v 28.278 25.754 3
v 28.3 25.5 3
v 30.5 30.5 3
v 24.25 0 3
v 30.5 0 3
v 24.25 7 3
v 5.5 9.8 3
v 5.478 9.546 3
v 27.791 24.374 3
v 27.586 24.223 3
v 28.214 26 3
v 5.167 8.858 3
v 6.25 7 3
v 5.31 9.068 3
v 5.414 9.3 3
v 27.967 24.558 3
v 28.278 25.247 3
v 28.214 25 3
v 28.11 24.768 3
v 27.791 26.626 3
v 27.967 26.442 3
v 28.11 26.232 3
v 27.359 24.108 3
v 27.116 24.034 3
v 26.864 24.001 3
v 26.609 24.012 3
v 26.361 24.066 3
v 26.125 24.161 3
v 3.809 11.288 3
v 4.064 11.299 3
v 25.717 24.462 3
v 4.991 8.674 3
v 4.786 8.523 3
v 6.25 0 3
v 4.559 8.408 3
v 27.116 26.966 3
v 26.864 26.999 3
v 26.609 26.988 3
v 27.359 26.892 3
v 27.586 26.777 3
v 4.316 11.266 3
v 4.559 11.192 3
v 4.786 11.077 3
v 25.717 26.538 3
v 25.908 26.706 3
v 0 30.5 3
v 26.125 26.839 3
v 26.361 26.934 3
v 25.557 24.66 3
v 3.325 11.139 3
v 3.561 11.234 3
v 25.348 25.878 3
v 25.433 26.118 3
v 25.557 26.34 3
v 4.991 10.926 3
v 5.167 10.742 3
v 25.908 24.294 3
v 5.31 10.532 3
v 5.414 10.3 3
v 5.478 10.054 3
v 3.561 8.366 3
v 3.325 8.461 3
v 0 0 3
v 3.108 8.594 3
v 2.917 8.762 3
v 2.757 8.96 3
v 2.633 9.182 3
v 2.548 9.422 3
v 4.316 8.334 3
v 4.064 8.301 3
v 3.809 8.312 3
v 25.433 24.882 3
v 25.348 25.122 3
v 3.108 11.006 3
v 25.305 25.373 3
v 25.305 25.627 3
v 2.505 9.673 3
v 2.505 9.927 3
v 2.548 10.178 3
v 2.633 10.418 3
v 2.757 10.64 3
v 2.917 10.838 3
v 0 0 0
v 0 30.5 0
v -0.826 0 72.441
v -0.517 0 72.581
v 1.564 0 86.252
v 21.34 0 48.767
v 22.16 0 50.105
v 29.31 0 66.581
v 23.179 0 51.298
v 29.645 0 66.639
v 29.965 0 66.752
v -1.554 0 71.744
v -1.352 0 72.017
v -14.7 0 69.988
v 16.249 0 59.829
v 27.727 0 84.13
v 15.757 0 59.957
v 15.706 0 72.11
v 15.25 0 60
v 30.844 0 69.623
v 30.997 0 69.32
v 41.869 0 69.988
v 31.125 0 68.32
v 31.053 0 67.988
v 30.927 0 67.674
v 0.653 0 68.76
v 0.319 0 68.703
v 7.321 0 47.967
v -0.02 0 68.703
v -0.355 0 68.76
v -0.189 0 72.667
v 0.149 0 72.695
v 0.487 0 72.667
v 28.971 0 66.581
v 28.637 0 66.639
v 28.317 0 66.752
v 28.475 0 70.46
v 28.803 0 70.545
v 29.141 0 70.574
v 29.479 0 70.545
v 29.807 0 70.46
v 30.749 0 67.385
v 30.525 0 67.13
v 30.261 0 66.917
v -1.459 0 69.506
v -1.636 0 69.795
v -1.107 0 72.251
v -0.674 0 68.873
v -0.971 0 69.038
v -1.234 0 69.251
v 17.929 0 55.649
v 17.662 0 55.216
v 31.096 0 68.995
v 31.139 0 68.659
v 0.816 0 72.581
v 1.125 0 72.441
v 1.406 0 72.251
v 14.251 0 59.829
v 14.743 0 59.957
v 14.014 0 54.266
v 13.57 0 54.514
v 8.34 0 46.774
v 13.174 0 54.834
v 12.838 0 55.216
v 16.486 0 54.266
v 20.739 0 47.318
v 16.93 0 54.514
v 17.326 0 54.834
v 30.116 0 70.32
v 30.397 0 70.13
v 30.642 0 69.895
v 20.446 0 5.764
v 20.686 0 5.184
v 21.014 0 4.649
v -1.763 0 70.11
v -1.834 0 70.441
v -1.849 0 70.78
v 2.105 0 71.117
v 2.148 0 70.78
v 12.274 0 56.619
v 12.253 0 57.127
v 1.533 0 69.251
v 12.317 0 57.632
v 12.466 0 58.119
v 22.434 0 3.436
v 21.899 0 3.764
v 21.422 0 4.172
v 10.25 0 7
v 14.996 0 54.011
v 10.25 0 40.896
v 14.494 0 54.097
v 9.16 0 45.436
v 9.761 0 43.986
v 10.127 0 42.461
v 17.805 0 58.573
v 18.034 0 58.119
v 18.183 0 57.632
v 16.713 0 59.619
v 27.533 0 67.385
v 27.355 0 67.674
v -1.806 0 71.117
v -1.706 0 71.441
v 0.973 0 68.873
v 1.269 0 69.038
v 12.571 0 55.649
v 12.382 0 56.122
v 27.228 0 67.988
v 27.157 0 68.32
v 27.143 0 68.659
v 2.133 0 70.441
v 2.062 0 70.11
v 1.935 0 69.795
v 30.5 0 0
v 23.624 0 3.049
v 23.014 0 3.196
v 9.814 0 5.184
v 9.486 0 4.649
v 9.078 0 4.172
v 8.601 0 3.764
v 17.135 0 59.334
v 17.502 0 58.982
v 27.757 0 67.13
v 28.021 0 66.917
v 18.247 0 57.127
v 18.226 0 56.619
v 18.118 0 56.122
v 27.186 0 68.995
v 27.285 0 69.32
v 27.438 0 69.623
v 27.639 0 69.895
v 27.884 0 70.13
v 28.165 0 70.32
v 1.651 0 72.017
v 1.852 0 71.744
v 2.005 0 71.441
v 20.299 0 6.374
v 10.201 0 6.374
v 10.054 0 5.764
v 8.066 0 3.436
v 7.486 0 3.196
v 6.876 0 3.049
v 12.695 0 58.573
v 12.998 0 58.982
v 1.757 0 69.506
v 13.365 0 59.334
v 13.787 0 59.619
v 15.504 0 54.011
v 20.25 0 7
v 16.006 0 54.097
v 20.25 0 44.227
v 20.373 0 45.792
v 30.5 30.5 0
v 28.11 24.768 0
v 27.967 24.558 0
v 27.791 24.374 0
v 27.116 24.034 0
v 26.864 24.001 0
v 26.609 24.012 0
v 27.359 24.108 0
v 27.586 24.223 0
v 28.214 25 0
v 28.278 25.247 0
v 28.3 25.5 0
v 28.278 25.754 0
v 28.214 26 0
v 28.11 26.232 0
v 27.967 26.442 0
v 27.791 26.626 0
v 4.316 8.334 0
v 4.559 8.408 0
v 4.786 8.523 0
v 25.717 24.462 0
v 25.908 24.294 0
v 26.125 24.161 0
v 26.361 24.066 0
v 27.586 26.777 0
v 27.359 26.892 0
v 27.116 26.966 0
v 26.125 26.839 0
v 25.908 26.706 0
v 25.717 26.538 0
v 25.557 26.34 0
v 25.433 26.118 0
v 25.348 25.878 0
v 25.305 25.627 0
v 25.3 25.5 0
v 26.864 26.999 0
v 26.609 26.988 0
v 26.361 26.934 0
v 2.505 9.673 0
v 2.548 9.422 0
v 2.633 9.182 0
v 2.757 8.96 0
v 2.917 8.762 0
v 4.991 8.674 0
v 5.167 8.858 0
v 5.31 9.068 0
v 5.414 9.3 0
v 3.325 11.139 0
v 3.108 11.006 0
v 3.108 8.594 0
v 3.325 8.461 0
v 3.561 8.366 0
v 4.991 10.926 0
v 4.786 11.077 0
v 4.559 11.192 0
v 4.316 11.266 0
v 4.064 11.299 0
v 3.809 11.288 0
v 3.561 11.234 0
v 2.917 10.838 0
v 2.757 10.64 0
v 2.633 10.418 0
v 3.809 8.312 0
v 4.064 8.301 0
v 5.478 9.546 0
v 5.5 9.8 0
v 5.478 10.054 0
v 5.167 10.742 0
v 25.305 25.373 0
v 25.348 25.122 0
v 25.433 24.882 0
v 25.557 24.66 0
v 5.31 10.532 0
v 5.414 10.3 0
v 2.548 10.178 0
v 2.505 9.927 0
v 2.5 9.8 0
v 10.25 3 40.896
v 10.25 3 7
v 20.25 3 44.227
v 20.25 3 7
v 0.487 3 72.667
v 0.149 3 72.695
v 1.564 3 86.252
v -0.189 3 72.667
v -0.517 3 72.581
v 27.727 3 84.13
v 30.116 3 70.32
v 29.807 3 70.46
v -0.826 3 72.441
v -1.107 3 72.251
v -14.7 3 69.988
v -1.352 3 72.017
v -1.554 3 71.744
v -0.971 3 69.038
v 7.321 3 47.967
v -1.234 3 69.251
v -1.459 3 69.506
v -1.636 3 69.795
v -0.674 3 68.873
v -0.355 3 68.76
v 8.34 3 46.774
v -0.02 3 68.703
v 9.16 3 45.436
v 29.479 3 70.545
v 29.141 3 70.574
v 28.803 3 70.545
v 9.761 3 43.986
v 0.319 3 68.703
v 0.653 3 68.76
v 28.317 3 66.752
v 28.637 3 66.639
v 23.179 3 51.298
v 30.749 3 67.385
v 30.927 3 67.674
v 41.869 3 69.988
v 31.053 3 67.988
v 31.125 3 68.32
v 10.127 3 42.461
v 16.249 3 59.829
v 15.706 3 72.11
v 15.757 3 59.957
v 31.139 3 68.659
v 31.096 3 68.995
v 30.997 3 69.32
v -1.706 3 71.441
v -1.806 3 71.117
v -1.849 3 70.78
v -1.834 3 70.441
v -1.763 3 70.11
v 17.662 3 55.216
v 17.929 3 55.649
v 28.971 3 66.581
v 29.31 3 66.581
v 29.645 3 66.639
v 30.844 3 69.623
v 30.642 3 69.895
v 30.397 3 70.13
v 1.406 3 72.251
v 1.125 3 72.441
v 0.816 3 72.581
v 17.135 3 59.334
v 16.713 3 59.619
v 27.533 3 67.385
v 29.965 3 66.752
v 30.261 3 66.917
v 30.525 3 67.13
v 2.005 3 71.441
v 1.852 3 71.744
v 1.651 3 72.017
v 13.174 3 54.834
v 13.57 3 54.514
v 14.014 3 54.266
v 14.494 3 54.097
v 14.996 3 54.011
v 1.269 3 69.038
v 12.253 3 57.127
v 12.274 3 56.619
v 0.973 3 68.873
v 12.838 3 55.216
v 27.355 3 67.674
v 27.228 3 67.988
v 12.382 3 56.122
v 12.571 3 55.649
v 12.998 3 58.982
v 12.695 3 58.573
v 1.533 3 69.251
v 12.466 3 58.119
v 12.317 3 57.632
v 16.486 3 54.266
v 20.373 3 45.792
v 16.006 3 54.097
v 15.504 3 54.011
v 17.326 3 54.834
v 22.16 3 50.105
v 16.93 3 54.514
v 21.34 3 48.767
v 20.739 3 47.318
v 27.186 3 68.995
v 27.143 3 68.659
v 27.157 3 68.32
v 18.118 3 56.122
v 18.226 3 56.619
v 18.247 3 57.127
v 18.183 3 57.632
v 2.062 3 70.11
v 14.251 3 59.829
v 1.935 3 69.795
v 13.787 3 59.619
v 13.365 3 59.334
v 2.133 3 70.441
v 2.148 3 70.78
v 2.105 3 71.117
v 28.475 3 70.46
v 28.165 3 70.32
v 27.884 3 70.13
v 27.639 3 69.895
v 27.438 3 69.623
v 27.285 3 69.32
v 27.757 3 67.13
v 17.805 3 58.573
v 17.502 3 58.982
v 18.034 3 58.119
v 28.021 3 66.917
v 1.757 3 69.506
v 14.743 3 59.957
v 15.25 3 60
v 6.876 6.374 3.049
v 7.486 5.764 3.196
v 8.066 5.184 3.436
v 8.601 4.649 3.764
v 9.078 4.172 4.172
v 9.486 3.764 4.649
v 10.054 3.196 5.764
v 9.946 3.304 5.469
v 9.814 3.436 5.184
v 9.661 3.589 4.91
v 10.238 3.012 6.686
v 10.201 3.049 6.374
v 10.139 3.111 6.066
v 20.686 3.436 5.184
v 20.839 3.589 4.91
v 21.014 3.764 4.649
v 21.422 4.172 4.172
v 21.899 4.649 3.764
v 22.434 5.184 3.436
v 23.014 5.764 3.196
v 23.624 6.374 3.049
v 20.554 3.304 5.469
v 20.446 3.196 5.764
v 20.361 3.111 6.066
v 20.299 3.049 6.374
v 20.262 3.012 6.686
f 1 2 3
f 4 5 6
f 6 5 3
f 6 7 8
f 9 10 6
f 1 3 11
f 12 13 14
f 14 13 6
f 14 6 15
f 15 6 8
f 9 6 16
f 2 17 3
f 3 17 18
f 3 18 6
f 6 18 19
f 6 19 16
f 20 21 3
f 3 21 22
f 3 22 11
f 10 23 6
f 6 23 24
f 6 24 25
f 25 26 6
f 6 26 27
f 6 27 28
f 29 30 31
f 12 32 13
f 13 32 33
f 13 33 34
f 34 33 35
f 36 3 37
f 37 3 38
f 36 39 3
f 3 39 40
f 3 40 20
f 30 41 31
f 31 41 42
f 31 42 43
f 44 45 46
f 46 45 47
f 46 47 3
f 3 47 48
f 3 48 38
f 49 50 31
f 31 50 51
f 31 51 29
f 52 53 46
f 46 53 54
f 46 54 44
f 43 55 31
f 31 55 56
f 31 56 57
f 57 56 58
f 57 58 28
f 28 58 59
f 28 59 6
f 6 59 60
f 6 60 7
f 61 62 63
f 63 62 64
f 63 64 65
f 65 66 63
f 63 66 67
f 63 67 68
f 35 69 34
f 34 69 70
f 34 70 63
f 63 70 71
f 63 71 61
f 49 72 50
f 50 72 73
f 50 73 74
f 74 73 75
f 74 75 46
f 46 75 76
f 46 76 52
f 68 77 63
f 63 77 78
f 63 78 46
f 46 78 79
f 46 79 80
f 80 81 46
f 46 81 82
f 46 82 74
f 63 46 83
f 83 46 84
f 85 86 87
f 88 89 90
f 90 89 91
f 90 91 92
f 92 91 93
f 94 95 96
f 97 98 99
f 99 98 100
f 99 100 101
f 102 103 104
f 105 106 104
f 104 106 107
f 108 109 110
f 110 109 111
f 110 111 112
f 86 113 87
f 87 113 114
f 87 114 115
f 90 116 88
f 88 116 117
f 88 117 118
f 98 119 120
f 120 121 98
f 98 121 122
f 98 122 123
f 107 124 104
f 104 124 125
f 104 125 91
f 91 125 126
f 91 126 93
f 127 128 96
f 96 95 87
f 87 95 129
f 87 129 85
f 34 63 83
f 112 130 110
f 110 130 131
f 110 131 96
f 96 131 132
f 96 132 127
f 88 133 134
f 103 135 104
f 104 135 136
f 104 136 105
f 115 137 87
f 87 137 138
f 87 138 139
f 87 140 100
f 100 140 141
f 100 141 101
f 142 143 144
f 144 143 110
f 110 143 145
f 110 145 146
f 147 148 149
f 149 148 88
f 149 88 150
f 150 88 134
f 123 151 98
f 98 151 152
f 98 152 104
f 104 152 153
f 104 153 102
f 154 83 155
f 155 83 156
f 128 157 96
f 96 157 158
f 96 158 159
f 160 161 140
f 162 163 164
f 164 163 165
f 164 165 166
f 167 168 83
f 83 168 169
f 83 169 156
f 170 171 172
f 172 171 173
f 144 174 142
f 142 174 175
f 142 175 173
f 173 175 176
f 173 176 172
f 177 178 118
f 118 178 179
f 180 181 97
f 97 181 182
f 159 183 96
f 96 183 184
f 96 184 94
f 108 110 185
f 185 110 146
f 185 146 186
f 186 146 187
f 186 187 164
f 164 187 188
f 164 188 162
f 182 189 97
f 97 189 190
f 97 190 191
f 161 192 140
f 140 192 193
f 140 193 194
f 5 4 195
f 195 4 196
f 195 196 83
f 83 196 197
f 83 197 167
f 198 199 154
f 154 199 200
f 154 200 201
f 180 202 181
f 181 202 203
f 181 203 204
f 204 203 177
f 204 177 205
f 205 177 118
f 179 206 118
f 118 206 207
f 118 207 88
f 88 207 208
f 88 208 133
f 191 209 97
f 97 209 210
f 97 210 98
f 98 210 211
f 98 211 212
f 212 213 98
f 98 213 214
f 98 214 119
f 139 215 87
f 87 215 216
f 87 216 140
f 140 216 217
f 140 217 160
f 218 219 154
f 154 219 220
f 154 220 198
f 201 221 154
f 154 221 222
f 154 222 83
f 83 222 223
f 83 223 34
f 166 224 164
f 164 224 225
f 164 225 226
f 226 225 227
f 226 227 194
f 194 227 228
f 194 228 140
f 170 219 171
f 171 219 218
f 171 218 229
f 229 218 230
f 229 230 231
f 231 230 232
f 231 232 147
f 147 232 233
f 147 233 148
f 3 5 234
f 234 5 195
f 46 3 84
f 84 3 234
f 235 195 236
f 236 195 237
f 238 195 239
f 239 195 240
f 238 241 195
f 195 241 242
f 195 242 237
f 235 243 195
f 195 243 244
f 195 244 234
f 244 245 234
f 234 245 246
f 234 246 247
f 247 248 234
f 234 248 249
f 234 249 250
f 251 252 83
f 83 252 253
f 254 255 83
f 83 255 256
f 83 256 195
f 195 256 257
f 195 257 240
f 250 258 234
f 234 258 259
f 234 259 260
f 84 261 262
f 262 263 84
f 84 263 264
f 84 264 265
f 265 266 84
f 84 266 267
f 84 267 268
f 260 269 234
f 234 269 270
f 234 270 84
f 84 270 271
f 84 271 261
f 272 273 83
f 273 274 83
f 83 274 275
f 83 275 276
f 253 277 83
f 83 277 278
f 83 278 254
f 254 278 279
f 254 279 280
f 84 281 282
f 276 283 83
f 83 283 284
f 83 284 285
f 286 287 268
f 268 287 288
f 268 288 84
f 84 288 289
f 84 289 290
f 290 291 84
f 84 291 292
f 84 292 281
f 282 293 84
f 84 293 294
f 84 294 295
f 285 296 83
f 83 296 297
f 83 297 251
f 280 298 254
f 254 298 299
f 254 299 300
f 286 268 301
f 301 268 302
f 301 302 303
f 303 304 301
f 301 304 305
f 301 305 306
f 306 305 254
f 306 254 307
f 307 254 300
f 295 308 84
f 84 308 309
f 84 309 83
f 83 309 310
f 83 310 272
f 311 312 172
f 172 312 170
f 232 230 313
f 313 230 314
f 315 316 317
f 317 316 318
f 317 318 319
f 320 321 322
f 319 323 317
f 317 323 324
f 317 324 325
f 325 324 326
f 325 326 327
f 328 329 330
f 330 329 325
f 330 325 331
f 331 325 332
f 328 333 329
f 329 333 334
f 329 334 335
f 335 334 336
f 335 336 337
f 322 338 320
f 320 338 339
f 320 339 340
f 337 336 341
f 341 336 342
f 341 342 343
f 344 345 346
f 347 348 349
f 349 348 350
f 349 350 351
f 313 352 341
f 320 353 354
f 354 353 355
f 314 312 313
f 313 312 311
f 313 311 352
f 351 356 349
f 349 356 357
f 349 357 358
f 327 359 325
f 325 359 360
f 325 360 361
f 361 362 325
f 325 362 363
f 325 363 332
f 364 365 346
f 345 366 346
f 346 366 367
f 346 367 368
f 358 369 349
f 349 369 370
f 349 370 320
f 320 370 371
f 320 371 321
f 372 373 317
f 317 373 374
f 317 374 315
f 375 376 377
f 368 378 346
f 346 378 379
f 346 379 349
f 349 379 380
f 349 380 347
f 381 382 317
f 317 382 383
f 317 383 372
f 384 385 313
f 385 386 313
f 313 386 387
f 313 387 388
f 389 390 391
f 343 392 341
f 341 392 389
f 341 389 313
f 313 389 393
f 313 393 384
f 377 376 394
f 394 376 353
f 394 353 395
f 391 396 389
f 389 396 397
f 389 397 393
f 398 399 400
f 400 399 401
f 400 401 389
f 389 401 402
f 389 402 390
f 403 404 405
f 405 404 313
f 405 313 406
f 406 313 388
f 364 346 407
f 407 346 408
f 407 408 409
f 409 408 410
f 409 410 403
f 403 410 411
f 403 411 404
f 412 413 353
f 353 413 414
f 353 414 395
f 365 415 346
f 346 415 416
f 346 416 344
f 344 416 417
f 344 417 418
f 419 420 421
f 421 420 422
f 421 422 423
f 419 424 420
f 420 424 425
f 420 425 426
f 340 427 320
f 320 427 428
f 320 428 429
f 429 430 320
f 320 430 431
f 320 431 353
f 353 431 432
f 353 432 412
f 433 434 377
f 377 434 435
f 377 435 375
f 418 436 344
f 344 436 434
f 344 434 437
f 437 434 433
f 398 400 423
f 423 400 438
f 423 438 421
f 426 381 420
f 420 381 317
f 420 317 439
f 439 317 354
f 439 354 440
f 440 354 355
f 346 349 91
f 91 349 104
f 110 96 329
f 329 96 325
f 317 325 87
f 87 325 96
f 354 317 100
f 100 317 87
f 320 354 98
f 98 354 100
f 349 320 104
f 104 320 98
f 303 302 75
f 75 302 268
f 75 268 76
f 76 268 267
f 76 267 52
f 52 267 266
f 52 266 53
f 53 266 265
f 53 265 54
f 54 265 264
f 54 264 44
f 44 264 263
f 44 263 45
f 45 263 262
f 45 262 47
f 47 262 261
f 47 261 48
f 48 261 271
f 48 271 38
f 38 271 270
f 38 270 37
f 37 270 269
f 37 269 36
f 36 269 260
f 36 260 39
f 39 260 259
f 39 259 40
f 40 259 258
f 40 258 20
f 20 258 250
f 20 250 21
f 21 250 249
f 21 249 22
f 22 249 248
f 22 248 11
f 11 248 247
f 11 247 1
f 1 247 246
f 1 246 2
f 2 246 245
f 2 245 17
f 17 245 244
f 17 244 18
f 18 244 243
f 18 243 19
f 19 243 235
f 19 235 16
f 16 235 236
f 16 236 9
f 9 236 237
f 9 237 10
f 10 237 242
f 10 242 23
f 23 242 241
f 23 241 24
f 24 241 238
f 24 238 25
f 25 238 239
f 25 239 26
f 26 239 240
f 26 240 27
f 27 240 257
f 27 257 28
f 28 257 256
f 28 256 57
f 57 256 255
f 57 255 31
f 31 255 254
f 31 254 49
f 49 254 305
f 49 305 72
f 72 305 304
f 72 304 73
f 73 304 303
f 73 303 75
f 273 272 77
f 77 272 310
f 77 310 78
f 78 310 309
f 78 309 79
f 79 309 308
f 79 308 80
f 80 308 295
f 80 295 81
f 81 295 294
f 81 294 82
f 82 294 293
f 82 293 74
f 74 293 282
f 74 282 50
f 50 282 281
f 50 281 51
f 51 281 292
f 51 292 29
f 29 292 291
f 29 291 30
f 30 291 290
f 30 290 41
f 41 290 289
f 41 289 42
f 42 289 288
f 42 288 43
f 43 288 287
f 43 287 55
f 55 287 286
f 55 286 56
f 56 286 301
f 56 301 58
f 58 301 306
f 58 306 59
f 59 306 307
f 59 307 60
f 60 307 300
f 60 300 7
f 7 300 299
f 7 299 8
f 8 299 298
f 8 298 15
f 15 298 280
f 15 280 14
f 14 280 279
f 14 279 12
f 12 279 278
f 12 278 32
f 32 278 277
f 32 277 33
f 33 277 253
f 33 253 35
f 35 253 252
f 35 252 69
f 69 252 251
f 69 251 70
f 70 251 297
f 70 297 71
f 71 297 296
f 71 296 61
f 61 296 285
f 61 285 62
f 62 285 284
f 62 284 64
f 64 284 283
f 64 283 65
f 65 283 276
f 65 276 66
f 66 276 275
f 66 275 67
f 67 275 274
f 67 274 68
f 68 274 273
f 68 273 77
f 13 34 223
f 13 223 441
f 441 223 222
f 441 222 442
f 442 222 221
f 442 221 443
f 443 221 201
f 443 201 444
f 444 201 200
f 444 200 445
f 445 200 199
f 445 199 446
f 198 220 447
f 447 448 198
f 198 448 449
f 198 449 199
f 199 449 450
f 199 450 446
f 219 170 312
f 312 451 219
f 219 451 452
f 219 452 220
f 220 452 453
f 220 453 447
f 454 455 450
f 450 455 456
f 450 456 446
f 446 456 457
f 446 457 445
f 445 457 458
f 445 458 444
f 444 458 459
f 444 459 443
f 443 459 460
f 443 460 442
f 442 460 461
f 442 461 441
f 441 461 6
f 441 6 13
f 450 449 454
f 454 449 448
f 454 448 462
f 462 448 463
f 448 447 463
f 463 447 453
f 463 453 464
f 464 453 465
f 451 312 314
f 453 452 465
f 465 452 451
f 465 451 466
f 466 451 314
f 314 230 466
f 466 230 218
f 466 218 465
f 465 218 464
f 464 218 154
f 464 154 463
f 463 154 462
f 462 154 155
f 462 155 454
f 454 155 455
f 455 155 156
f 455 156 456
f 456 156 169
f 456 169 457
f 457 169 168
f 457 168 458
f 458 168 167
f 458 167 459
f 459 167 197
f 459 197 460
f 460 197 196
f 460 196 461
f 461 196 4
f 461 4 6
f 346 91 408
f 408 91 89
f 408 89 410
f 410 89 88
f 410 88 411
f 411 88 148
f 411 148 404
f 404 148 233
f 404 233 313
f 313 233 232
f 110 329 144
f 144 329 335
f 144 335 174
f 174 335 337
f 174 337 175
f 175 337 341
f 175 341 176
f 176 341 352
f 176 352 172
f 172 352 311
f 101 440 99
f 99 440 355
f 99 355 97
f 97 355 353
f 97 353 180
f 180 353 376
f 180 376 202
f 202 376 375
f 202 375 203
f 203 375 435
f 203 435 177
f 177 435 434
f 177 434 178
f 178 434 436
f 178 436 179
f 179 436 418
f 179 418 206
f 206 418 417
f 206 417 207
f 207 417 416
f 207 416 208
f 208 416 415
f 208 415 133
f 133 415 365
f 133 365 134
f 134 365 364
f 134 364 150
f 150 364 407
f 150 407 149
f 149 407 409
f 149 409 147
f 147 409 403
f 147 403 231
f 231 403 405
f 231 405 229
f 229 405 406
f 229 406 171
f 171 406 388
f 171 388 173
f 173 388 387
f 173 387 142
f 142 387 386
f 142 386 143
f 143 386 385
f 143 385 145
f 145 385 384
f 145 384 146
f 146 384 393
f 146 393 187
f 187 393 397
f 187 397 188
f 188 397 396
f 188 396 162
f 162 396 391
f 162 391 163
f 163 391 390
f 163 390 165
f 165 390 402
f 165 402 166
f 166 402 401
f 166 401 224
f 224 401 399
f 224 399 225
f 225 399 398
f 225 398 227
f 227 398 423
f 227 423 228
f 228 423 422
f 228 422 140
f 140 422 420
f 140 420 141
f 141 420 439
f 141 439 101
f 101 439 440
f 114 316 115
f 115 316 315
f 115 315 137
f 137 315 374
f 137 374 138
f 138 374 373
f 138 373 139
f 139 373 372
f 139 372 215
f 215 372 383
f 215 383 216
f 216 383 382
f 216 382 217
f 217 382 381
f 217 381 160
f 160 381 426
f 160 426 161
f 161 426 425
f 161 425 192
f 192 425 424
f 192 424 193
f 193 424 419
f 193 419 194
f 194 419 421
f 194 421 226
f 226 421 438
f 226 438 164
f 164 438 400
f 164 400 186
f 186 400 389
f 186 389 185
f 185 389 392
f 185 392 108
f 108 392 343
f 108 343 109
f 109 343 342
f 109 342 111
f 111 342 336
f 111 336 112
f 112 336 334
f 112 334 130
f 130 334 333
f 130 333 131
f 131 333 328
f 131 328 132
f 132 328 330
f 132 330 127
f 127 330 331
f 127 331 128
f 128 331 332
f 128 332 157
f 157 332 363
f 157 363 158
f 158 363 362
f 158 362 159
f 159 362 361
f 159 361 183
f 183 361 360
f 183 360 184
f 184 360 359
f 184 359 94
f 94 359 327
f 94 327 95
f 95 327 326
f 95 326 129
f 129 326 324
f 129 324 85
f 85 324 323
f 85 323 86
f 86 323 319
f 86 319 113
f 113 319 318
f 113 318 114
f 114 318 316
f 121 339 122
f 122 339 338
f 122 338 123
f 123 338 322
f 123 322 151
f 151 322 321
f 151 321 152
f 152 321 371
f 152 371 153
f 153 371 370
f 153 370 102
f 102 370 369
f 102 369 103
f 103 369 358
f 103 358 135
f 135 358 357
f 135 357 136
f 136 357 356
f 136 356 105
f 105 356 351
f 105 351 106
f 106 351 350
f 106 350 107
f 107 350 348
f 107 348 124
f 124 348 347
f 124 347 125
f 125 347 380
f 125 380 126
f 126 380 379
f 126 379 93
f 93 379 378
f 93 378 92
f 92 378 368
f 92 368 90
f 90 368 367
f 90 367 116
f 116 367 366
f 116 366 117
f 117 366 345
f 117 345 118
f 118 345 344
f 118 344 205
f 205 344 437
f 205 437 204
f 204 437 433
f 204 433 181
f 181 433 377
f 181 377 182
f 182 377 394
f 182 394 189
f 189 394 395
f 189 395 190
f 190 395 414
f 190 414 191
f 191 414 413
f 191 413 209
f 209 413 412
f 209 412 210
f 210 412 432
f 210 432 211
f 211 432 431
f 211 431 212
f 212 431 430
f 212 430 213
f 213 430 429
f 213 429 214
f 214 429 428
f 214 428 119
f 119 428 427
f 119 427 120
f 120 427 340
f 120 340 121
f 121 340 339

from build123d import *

# Parameters (mm, degrees)
SKETCH1_W             = 30.5
SKETCH1_H             = 30.5
BOSS_EXTRUDE1_DEPTH   = 3
SKETCH2_W             = 10
SKETCH2_H             = 60
BOSS_EXTRUDE2_DEPTH   = 3
BOSS_EXTRUDE3_DEPTH   = 3
F_3_0MM_DOWEL_HOLE1_D = 3
FILLET1_R             = 4
FILLET2_R             = 10
SKETCH6_R             = 3
CUT_EXTRUDE1_DEPTH    = 3
F_4_0MM_DOWEL_HOLE1_D = 4
F_4_0MM_DOWEL_HOLE2_D = 4


with BuildPart() as part:
    # Sketch1 → Boss-Extrude1 (new body)
    with BuildSketch(Plane.XY):
        with Locations((15.25, 15.25)):
            Rectangle(SKETCH1_W, SKETCH1_H)
    extrude(amount=BOSS_EXTRUDE1_DEPTH)

    # Sketch2 → Boss-Extrude2 (add)
    with BuildSketch(Plane.XZ):
        with Locations((15.25, 33)):
            Rectangle(SKETCH2_W, SKETCH2_H)
    extrude(amount=-BOSS_EXTRUDE2_DEPTH)

    # Sketch3 → Boss-Extrude3 (add)
    with BuildSketch(Plane.XZ):
        Polygon((22.565242881, 50.684757119), (13.584450202, 41.70396444), (-14.699821045, 69.988235687), (1.563634922, 86.251691655), (15.705770546, 72.109556031), (27.726585826, 84.130371311), (41.86872145, 69.988235687), align=None)
    extrude(amount=-BOSS_EXTRUDE3_DEPTH)

    # Ø3.0mm Dowel Hole1 (through all)
    with Locations(Plane.XY.offset(3)):
        with Locations((4, 9.8), (26.8, 25.5)):
            Hole(F_3_0MM_DOWEL_HOLE1_D / 2)

    # Fillet1
    fillet1_edges = [part.edges().sort_by_distance(p)[0] for p in [
        (10.25, 1.5, 3),
        (15.25, 3, 3),
        (20.25, 1.5, 3),
    ]]
    fillet(fillet1_edges, radius=FILLET1_R)

    # Fillet2
    fillet2_edges = [part.edges().sort_by_distance(p)[0] for p in [
        (20.25, 1.5, 48.369514237),
        (10.25, 1.5, 45.038414642),
    ]]
    fillet(fillet2_edges, radius=FILLET2_R)

    # Sketch6 → Cut-Extrude1 (cut)
    with BuildSketch(Plane(origin=(0, 3, 0), x_dir=(1, 0, 0), z_dir=(0, 1, 0))):
        with Locations(Location((15.25, -57, 0), (0, 0, 270))):
            Circle(SKETCH6_R)
    extrude(amount=-CUT_EXTRUDE1_DEPTH, mode=Mode.SUBTRACT)

    # Ø4.0mm Dowel Hole1 (through all)
    with Locations(Plane(origin=(0, 3, 0), x_dir=(1, 0, 0), z_dir=(0, 1, 0))):
        with Locations((0.14942136, -70.695342468)):
            Hole(F_4_0MM_DOWEL_HOLE1_D / 2)

    # Ø4.0mm Dowel Hole2 (through all)
    with Locations(Plane(origin=(0, 3, 0), x_dir=(1, 0, 0), z_dir=(0, 1, 0))):
        with Locations((29.140799389, -68.574022125)):
            Hole(F_4_0MM_DOWEL_HOLE2_D / 2)


solid = part.part
